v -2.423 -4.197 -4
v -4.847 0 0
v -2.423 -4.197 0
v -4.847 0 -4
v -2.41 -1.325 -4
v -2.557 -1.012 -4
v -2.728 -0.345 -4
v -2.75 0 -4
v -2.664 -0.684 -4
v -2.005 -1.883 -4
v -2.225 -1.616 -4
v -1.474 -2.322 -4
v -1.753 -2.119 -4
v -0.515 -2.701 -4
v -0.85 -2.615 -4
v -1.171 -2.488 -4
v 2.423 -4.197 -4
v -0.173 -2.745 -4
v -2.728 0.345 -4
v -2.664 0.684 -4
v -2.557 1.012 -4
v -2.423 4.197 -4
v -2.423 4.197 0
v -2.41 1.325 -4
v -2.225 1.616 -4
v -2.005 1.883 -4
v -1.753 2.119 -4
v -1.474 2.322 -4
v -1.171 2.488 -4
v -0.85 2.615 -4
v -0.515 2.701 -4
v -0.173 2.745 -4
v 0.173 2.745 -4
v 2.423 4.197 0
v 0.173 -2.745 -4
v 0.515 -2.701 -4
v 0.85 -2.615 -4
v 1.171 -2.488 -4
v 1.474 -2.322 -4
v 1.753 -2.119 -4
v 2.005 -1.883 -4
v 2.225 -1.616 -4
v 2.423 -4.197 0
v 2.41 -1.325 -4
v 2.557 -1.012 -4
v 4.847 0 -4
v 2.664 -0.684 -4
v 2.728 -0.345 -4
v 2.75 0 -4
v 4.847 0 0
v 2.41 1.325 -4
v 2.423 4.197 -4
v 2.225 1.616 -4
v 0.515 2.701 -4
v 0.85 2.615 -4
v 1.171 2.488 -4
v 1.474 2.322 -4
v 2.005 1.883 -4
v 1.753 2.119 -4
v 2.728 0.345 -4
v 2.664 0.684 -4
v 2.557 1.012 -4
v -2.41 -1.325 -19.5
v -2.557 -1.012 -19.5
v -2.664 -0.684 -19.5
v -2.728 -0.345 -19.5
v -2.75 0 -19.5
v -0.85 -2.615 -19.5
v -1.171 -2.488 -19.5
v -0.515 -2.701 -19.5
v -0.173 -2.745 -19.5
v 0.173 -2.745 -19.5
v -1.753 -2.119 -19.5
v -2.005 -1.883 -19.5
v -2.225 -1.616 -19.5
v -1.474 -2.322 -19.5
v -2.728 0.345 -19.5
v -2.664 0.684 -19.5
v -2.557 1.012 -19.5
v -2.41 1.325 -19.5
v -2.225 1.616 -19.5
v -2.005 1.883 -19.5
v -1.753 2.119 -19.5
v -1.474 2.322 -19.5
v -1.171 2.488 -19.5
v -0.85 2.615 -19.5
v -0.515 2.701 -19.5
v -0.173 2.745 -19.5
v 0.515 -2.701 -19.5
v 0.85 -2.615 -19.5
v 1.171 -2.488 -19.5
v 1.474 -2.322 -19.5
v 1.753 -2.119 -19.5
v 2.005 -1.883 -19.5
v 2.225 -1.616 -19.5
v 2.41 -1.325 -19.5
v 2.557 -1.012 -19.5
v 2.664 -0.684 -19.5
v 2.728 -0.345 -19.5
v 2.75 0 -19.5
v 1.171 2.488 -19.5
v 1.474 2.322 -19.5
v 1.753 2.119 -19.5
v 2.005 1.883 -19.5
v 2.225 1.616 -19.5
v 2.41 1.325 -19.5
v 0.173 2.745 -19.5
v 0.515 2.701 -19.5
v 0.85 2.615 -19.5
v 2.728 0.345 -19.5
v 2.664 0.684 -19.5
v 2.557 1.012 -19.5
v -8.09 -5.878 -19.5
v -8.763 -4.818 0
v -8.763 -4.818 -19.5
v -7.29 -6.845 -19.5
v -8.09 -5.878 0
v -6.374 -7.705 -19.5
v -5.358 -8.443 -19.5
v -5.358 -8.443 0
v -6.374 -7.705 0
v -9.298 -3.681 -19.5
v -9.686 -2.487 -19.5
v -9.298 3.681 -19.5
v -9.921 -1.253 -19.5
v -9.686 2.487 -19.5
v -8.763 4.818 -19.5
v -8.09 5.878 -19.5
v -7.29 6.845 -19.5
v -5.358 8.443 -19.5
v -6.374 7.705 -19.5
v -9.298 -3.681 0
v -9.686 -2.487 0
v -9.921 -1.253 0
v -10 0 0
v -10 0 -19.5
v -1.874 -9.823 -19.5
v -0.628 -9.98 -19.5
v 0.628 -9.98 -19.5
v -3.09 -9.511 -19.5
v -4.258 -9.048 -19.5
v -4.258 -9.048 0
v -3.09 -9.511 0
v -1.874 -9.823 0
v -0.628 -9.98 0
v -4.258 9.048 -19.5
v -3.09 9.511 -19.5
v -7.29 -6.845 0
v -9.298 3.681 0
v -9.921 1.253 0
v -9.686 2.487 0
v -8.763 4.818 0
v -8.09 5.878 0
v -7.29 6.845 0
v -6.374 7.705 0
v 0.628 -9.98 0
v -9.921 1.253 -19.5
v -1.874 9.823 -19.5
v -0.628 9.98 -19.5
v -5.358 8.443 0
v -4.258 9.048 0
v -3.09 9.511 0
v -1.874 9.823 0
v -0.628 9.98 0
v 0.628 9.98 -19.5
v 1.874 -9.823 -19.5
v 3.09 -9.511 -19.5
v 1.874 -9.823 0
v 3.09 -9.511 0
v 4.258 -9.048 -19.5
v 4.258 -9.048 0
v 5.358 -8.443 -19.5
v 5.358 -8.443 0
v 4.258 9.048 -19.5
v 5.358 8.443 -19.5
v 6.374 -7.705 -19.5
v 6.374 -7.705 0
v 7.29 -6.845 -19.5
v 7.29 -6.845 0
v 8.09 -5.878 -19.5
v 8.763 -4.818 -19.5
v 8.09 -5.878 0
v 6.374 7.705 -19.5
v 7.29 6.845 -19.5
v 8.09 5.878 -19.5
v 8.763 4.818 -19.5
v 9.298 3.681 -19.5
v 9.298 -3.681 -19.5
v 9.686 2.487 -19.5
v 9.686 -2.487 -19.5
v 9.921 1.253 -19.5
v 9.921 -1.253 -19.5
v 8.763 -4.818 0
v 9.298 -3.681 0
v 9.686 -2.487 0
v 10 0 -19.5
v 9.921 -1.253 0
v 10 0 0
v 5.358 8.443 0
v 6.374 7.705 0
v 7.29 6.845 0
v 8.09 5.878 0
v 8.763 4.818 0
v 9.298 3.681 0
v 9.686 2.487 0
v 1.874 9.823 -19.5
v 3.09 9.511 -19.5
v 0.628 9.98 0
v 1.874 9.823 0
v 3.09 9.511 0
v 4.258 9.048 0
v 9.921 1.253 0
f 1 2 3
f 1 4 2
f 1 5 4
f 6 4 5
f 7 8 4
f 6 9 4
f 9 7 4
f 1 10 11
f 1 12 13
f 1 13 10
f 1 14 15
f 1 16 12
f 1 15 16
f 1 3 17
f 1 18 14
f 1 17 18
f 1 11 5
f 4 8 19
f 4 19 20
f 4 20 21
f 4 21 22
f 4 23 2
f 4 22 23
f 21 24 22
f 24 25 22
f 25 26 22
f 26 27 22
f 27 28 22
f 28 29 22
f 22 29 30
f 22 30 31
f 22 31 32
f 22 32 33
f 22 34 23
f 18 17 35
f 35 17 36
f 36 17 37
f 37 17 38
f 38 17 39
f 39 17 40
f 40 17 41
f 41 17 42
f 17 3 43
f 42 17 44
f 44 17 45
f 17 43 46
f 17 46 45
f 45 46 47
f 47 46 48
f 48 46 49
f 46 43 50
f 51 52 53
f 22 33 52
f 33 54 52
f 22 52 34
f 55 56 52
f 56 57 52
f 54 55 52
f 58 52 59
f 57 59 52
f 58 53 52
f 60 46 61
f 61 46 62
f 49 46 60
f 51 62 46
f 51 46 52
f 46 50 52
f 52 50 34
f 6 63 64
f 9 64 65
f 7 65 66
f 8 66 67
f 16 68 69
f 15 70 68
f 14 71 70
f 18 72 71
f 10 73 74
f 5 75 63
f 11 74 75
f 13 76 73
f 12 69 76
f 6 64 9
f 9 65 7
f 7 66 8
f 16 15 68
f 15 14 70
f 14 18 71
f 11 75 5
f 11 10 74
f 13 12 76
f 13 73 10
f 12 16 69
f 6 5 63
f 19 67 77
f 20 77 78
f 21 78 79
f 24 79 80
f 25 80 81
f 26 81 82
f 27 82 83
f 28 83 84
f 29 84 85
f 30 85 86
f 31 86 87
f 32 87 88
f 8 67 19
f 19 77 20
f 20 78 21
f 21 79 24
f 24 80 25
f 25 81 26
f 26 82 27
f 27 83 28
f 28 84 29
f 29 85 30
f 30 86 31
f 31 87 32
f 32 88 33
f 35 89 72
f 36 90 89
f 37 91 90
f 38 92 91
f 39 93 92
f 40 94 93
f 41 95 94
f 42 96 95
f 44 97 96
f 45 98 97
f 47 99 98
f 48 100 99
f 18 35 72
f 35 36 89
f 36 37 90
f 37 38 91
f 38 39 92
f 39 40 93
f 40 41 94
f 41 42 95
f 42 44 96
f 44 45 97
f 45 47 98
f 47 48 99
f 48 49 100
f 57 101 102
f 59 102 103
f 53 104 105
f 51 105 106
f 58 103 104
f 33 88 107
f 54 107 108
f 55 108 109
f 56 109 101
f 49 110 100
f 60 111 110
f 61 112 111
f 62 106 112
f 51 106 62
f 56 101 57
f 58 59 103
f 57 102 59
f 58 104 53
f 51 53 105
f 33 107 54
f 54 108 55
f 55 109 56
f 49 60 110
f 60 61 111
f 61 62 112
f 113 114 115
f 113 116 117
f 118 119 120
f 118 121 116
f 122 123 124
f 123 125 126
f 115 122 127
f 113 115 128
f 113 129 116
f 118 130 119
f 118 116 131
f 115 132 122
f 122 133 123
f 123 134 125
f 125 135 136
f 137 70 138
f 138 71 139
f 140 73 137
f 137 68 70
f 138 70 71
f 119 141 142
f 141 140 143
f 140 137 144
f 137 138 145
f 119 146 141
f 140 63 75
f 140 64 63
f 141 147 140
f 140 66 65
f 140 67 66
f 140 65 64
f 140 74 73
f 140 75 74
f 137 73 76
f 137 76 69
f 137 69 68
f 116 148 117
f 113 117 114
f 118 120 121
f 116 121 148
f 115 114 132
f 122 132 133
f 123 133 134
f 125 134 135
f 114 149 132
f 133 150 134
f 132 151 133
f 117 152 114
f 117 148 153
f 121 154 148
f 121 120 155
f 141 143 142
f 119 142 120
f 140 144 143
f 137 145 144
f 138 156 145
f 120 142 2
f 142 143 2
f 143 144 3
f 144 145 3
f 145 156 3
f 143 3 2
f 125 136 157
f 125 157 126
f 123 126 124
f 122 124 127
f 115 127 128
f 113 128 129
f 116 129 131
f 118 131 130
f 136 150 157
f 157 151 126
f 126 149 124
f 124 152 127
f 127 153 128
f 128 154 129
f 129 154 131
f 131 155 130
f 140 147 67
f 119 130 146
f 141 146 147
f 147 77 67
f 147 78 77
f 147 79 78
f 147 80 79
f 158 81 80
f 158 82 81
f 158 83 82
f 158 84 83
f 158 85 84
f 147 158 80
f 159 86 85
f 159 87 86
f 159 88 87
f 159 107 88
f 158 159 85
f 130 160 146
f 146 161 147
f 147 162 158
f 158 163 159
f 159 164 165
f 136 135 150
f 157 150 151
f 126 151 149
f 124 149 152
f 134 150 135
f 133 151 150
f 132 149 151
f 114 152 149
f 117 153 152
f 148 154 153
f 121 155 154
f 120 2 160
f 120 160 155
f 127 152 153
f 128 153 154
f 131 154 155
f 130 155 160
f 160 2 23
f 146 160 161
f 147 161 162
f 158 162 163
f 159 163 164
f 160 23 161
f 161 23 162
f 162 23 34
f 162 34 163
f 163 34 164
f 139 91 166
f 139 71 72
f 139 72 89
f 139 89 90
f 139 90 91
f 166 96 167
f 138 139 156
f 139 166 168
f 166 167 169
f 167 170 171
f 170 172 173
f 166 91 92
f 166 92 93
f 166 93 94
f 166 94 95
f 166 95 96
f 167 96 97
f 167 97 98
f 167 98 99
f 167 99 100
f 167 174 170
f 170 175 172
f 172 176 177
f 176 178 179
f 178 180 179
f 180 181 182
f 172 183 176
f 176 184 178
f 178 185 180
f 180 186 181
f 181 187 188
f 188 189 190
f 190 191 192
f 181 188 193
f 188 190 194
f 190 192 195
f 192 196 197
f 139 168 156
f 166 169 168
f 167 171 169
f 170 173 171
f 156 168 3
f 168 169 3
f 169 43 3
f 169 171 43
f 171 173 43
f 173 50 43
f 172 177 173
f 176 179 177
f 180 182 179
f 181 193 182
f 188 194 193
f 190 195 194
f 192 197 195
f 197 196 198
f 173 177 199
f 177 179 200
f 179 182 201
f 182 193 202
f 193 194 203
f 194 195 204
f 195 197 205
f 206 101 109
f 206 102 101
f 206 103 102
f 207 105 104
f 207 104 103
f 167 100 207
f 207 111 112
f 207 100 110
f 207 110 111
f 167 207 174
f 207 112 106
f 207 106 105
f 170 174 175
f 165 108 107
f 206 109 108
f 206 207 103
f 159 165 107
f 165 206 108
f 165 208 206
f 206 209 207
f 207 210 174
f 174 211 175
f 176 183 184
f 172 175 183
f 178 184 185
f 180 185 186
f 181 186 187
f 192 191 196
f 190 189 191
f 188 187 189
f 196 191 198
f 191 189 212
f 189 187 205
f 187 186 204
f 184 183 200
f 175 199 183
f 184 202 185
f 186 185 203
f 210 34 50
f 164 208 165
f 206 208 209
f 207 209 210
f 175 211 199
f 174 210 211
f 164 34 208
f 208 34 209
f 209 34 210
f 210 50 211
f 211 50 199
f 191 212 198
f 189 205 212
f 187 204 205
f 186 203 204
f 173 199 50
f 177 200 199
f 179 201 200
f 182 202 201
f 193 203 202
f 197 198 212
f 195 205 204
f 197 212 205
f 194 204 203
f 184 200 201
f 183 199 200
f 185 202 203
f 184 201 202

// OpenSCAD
$fn = 50;

difference() {
	union() {
		translate(v = [0, 0, -19.5]) {
			cylinder(h = 19.5, r = 10.0);
		}
	}
	union() {
		translate(v = [0, 0, 0]) {
			rotate(a = [0, 0, 0]) {
				difference() {
					union() {
						translate(v = [0, 0, -4]) {
							linear_extrude(height = 4) {
								polygon(points = [[4.8468, 0.0], [2.4234000000000004, 4.197451927062417], [-2.423399999999999, 4.197451927062417], [-4.8468, 5.935618106107392e-16], [-2.423400000000002, -4.197451927062416], [2.423399999999997, -4.197451927062419]]);
							}
						}
					}
					union();
				}
			}
		}
		#translate(v = [0, 0, -100.0]) {
			cylinder(h = 200, r = 2.75);
		}
	}
}
